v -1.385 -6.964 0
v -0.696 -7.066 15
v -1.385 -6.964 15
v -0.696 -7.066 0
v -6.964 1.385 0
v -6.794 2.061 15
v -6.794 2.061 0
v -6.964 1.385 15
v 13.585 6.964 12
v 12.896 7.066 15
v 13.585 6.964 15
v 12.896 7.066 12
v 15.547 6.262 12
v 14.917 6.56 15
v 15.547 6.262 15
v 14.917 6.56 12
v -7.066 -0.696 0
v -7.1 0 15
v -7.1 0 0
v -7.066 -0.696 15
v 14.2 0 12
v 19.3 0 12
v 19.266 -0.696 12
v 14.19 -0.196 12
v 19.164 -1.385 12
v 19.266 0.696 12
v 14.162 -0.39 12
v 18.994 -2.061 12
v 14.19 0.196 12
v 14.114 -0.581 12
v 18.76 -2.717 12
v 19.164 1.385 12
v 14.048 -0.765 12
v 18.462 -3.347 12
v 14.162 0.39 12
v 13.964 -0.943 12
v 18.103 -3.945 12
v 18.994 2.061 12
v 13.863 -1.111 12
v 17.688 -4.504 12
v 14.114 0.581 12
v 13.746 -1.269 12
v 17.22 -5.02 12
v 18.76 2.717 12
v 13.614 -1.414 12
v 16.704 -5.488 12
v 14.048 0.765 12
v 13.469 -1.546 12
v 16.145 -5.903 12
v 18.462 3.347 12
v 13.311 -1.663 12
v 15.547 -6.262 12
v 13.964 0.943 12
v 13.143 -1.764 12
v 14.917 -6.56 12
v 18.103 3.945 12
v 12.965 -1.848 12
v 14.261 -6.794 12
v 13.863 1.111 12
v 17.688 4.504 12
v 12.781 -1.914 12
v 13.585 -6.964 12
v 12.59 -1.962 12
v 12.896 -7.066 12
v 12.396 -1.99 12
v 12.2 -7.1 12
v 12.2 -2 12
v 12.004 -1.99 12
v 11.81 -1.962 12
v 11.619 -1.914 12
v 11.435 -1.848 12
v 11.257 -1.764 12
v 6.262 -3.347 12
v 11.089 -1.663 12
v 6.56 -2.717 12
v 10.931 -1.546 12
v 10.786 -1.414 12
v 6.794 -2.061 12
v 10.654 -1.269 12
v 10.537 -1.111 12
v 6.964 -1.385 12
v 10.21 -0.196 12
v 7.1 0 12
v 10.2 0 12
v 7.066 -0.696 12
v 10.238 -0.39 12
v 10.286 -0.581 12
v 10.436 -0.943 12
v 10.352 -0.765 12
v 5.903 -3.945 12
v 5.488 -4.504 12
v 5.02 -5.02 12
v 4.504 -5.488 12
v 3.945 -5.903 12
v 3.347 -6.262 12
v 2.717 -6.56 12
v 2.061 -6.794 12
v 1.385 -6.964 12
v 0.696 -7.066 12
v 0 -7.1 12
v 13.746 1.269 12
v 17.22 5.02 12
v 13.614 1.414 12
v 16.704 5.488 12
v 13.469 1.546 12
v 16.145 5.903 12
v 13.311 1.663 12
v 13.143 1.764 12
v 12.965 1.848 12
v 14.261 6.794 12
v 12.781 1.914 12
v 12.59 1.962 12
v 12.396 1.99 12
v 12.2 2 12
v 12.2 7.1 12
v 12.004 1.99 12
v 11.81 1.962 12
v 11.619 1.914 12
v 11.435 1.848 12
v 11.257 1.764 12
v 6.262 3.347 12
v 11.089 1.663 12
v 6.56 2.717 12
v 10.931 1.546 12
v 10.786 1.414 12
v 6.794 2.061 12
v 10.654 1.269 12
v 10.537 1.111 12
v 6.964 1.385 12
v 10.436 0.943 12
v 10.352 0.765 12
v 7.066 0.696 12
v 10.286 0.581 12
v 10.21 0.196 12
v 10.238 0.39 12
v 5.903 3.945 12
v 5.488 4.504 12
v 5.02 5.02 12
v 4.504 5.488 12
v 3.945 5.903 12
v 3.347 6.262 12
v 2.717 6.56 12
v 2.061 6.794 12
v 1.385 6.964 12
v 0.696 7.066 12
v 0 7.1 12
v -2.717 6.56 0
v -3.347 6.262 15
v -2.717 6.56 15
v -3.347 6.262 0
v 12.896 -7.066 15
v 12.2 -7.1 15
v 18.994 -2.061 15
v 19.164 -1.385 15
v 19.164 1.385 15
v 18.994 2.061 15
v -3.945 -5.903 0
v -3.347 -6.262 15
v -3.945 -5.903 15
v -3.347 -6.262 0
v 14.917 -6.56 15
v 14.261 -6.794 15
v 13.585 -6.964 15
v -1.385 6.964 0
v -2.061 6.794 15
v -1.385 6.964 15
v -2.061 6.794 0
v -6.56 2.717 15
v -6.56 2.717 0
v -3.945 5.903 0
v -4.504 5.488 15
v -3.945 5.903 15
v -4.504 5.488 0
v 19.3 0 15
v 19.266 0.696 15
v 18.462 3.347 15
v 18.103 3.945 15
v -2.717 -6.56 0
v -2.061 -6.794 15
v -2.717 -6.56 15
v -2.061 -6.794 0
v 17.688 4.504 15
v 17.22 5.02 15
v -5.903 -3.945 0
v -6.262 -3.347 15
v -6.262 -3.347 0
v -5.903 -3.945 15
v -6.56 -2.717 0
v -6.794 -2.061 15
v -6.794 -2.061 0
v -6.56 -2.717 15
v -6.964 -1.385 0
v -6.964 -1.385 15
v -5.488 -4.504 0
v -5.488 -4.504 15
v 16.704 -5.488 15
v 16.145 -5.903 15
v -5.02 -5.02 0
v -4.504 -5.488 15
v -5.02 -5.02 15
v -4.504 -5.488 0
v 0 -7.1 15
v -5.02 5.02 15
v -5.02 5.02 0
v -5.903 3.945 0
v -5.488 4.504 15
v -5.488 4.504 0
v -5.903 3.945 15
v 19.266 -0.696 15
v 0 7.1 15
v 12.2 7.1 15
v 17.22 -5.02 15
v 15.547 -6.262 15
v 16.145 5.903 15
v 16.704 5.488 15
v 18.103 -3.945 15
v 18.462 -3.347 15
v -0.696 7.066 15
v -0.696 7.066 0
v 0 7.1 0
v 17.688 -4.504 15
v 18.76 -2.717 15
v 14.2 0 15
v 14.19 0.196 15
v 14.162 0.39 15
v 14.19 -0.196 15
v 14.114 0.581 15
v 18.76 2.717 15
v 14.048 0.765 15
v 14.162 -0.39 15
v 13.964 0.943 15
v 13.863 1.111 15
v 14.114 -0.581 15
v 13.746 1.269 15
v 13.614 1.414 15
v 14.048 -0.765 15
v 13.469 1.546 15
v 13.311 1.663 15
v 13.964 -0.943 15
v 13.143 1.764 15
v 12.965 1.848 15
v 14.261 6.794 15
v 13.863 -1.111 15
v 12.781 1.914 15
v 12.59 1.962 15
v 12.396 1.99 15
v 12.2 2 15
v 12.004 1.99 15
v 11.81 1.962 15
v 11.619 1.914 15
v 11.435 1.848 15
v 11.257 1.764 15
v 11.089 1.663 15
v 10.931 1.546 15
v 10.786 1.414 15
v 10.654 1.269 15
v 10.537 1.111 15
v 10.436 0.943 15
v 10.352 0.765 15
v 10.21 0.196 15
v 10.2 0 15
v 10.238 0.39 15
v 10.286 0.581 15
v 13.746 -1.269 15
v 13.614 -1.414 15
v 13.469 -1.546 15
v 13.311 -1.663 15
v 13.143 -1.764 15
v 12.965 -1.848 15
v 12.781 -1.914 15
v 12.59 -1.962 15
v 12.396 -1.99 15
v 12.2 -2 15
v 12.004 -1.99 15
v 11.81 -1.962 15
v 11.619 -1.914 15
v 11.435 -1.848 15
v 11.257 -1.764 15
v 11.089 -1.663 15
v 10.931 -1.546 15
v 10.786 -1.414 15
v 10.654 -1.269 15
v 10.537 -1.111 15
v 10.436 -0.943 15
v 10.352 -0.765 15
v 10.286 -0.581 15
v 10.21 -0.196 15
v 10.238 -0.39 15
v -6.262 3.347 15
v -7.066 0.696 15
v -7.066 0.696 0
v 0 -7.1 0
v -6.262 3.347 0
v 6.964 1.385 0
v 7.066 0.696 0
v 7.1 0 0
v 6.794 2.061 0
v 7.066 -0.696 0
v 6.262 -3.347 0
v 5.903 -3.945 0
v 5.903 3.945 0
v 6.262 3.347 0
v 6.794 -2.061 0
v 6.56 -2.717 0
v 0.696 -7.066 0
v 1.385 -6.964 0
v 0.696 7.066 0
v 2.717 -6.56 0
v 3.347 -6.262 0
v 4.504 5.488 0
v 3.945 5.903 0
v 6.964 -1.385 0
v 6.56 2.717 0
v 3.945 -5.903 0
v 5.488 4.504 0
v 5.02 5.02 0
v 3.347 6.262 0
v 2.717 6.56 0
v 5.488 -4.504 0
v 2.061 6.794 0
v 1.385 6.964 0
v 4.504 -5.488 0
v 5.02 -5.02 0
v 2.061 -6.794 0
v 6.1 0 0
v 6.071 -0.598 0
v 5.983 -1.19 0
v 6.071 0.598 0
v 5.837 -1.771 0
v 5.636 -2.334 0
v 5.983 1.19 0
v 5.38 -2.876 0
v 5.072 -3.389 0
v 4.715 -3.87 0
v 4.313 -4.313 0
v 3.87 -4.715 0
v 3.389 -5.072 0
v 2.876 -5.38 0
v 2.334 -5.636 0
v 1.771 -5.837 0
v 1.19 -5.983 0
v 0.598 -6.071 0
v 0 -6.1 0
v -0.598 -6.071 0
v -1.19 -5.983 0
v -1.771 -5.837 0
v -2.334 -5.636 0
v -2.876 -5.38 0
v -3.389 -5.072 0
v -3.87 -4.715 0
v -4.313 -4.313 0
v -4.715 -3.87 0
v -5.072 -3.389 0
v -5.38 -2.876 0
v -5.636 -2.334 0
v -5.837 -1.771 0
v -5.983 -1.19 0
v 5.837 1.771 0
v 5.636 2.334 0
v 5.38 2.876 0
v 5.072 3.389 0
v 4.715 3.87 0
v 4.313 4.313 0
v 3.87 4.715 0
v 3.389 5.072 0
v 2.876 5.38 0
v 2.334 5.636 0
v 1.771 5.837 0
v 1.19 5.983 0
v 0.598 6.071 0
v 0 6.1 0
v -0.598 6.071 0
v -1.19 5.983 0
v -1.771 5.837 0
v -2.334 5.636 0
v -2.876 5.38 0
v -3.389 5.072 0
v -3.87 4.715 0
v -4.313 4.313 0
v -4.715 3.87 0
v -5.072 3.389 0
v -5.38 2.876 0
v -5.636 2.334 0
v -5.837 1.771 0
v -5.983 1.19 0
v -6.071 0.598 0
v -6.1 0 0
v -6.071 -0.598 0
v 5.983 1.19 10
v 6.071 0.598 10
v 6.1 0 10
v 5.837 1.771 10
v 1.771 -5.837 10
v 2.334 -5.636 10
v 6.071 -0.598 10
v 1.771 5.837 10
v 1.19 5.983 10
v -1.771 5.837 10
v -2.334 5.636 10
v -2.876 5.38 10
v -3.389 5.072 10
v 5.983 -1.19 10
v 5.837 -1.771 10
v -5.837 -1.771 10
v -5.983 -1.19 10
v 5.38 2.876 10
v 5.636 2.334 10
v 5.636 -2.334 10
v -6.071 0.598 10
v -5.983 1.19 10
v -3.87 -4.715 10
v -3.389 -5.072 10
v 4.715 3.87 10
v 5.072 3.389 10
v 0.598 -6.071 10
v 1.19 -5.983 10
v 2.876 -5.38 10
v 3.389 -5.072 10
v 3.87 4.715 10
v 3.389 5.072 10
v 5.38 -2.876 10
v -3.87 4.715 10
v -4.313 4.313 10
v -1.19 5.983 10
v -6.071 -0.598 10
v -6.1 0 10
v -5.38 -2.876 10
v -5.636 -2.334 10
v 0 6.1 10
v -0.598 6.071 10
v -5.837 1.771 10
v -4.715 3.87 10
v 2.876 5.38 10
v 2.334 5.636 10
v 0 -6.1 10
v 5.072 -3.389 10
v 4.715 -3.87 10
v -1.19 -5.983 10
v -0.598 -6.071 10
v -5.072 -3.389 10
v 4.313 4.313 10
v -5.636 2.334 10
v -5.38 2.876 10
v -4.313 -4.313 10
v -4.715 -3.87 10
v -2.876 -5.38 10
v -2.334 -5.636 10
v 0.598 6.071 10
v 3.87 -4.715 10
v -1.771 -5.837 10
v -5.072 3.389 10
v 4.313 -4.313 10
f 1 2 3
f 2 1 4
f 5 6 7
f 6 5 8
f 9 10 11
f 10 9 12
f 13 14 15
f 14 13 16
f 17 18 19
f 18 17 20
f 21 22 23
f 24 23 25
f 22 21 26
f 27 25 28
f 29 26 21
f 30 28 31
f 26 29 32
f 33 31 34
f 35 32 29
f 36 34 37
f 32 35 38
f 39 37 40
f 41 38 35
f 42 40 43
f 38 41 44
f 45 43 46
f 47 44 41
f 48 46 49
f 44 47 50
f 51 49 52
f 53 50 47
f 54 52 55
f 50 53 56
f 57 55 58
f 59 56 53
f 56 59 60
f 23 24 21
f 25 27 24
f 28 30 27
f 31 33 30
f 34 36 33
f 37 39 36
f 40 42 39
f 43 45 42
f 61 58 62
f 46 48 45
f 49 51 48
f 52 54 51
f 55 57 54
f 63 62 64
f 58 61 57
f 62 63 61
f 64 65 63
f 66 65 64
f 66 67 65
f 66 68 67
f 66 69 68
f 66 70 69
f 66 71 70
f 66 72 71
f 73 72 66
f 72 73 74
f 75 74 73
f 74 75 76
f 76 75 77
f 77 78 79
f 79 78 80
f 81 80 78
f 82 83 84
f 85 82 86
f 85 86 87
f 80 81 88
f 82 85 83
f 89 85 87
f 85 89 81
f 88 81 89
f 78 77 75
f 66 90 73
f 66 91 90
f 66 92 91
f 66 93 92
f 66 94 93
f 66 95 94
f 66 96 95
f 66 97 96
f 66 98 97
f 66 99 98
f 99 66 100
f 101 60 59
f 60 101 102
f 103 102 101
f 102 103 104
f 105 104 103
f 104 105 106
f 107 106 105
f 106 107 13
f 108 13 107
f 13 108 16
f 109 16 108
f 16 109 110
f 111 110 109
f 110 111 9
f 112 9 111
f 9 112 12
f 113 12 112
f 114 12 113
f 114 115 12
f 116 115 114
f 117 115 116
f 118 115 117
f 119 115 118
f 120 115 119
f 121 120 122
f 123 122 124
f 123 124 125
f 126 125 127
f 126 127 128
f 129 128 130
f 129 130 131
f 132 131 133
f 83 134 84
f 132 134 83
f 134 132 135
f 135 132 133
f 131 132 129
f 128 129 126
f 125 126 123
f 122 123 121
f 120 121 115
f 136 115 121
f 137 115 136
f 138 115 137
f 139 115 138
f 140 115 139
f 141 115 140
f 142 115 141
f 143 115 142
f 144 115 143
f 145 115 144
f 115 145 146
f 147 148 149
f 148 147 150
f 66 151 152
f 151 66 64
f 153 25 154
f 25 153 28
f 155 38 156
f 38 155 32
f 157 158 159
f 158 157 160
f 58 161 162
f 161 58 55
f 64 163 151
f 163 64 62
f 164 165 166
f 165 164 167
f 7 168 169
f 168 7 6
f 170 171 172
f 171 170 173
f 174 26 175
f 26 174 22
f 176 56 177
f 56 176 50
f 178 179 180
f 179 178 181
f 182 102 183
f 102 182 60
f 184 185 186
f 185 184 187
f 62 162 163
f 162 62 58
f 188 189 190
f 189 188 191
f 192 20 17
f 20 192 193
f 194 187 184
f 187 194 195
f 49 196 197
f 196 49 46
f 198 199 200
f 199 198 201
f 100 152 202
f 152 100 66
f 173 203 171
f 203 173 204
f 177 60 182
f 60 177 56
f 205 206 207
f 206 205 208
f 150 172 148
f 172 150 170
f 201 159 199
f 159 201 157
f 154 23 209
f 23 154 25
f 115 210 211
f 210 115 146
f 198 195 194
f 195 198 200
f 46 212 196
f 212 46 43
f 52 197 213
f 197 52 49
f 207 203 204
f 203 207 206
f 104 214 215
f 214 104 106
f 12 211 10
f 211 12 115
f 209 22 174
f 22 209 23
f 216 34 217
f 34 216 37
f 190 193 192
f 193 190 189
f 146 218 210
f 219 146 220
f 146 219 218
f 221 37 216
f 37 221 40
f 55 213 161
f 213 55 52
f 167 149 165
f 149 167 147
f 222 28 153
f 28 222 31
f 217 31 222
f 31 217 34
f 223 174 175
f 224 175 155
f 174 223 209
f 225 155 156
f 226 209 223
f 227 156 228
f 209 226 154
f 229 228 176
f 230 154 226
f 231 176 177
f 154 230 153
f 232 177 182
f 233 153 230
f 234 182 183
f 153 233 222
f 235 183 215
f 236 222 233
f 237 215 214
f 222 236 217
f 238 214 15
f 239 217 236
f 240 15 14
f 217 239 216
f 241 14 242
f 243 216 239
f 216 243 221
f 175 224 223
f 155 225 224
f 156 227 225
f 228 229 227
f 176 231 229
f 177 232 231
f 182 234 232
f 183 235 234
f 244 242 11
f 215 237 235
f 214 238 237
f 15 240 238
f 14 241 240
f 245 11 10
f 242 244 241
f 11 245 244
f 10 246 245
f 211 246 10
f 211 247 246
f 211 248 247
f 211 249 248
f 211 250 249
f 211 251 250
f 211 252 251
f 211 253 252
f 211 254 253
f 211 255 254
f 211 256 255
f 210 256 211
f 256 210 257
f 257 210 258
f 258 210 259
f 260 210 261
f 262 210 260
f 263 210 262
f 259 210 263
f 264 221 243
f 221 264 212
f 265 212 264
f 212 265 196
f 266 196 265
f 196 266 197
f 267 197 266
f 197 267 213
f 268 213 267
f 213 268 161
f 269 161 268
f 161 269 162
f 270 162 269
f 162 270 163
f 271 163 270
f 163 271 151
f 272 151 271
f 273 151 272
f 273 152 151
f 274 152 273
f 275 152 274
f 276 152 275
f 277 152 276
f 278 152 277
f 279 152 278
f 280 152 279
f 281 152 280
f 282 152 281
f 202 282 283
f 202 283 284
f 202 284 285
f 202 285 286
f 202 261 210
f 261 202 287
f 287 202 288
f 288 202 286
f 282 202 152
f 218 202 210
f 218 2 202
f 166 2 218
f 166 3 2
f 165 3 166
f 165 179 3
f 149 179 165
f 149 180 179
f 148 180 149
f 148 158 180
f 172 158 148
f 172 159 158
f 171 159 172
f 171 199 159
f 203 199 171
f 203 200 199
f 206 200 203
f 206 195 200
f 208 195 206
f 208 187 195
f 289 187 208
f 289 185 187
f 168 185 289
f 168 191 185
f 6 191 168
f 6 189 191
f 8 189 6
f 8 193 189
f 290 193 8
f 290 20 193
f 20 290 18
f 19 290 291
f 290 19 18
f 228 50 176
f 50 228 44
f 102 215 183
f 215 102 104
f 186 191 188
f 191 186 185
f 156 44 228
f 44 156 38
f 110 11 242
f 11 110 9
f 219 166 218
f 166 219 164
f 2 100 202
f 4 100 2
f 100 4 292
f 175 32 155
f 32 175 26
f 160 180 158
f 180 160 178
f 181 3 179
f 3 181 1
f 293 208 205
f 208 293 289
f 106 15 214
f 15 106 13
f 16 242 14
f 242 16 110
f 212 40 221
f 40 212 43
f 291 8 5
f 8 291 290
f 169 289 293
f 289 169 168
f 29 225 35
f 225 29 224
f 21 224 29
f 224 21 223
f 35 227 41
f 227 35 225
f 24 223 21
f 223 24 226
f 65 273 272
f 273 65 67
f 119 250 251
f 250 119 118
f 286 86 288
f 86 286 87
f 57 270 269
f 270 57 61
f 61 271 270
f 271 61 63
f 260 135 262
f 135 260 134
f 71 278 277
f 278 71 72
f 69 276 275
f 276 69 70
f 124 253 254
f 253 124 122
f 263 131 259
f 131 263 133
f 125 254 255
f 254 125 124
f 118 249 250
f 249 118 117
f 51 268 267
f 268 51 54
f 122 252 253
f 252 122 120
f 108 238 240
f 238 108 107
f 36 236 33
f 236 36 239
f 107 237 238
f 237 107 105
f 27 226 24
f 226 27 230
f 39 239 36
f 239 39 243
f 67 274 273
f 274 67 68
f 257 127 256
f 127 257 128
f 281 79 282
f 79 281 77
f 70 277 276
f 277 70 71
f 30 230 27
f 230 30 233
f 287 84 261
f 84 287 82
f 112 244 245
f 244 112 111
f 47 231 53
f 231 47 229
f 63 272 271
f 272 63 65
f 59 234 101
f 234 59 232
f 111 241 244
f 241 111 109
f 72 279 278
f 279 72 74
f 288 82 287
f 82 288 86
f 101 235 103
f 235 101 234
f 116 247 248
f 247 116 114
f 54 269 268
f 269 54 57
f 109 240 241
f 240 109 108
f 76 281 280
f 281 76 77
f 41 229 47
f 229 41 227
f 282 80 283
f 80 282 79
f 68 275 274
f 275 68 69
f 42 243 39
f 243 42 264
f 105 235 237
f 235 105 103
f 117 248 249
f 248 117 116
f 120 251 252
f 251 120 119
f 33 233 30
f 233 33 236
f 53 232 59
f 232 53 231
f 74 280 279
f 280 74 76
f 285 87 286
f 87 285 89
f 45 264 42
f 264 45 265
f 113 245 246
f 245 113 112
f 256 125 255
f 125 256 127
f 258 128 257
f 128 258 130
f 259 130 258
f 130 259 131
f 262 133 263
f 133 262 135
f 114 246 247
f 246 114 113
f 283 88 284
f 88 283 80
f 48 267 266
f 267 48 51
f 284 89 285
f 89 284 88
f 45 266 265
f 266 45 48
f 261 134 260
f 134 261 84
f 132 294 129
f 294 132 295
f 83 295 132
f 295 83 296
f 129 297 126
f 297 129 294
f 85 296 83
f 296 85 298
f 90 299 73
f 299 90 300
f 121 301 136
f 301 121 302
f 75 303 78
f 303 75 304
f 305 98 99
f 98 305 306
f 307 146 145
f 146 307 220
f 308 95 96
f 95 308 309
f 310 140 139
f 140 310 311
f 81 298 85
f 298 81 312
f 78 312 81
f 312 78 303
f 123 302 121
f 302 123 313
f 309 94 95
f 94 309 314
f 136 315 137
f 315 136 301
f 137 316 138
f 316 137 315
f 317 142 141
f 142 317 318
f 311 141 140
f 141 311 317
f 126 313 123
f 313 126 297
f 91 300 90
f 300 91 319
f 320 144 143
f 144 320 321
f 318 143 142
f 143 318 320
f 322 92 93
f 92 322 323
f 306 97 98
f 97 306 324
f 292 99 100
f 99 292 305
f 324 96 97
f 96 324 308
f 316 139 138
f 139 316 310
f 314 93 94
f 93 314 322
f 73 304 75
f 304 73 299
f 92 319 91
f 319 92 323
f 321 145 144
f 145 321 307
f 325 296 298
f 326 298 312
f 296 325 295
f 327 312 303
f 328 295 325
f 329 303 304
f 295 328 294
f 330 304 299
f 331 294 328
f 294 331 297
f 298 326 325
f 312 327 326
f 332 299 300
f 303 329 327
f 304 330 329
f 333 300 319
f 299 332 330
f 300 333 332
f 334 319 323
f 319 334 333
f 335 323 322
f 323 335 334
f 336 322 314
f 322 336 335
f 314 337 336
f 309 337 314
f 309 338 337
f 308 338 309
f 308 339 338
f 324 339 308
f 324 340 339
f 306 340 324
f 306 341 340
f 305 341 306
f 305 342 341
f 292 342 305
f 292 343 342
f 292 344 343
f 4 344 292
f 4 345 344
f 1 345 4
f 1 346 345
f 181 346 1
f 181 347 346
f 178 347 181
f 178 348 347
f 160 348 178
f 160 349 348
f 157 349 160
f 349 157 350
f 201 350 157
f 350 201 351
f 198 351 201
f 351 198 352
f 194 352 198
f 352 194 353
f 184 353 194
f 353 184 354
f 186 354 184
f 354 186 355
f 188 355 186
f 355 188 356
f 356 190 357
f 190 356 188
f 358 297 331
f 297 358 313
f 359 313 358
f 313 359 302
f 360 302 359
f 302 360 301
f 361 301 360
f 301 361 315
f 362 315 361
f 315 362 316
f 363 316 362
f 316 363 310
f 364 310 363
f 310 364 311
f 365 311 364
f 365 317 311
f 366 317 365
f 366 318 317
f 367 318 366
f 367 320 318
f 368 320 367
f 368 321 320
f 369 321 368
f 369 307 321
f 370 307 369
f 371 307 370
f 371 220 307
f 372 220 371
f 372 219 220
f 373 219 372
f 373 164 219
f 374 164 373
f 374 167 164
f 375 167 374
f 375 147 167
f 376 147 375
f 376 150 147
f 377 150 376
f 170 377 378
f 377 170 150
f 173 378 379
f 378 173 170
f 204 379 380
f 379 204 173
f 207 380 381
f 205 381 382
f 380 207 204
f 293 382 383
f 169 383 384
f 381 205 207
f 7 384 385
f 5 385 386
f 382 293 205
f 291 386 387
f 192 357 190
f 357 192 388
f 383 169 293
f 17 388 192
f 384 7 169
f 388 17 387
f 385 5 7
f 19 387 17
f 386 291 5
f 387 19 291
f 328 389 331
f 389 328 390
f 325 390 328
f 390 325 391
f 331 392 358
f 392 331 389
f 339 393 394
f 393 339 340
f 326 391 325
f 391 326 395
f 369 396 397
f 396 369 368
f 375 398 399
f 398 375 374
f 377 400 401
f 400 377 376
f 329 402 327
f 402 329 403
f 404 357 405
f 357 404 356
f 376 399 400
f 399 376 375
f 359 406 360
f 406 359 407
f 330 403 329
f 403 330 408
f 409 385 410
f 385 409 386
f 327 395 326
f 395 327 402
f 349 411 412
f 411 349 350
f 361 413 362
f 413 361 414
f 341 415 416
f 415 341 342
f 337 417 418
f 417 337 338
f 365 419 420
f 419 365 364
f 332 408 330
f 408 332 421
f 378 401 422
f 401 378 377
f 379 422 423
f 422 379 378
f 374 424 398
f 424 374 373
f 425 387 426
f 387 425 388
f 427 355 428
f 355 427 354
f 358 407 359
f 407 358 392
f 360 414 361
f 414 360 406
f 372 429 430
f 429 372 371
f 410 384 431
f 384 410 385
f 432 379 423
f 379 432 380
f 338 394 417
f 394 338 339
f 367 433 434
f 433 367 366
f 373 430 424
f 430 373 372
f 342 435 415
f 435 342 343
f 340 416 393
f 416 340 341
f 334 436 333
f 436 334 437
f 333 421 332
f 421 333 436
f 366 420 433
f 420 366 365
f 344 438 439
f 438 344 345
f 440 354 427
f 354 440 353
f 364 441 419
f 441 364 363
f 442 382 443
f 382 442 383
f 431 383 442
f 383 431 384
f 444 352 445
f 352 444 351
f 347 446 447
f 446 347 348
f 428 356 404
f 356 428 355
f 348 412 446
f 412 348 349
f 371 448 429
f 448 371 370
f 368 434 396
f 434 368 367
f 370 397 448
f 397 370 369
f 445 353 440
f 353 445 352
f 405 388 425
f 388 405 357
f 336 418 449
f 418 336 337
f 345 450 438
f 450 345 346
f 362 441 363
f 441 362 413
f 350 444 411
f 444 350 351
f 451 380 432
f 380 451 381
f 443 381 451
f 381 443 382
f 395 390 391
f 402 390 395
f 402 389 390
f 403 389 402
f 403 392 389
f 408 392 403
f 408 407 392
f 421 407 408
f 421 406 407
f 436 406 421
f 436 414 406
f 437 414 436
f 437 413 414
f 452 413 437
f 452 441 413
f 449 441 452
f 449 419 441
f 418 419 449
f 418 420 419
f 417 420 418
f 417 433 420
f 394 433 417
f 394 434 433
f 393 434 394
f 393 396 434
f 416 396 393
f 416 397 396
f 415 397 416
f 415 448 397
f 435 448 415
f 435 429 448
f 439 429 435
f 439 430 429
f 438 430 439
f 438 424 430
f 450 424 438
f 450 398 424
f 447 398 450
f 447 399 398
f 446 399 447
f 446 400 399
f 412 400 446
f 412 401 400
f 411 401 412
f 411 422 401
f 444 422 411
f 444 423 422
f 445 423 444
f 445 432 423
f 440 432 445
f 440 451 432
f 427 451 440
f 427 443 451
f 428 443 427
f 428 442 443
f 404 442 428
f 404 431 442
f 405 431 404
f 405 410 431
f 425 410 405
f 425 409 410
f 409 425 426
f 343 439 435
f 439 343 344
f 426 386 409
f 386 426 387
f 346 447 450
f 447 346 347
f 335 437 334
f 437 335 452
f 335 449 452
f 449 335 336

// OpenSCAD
bar_radius = 6.1;
$fn = $preview ? 32 : 64;
difference(){
    union(){
        cylinder(15, bar_radius+1, bar_radius+1, false);
        difference(){
            translate([0, 0, 12])
                hull(){
                    translate([bar_radius*2, 0, 0])
                        cylinder(3, bar_radius+1, bar_radius+1, false);
                    cylinder(3, bar_radius+1, bar_radius+1, false);
                }
            translate([bar_radius*2, 0, 12])
                        cylinder(3, 2, 2, false);
        }
    }
    cylinder(10, bar_radius, bar_radius, false);
}
